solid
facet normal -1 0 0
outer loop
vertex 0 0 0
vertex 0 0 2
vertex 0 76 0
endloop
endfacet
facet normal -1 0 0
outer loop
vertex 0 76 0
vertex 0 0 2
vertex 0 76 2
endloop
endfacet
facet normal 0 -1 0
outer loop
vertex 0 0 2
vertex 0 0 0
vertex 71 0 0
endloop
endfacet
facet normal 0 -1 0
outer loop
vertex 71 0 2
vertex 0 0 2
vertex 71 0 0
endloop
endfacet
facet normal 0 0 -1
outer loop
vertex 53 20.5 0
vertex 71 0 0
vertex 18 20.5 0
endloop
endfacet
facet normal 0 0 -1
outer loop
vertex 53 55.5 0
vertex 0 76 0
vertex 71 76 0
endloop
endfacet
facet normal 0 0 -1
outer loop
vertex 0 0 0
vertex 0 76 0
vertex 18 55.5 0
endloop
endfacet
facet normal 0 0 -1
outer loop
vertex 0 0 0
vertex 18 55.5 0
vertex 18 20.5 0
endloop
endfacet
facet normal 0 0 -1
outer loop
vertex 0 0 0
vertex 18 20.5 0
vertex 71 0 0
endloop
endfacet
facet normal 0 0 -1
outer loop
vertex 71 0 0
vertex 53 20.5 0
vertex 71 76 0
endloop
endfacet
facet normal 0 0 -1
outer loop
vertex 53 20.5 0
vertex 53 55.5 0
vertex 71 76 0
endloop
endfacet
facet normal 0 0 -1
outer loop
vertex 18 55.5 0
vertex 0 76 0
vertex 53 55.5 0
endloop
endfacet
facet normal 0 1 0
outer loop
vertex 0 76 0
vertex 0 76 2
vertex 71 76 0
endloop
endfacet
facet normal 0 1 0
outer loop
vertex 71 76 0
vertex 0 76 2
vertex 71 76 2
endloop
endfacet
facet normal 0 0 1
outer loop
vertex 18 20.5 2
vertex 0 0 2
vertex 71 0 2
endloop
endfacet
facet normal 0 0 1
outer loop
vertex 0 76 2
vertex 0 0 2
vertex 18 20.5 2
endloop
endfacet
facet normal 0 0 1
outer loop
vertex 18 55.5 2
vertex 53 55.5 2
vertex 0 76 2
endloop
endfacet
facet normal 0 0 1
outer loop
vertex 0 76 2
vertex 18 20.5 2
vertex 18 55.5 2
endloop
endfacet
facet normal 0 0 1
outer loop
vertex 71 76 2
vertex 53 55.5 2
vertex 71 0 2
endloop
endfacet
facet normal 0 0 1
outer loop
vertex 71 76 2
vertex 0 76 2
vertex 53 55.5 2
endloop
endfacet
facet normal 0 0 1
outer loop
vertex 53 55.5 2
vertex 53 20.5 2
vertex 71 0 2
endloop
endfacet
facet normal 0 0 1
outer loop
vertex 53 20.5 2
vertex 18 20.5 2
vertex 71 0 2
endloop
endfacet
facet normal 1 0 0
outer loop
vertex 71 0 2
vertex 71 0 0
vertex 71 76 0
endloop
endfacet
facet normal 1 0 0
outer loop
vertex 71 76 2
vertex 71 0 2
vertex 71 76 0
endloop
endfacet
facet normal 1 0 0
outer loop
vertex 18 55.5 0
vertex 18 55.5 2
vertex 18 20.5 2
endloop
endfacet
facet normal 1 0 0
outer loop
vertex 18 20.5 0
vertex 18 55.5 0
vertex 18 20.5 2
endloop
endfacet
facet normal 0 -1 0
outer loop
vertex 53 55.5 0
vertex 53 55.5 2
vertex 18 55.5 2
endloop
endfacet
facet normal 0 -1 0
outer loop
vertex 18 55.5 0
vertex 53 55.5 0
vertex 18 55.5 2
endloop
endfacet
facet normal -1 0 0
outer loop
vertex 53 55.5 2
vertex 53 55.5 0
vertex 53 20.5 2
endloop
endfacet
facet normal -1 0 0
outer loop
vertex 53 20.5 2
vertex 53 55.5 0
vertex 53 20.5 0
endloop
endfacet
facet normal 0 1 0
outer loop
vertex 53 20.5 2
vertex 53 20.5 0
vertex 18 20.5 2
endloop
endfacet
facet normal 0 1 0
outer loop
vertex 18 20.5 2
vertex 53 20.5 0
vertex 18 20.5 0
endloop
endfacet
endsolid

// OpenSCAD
difference()
{
	cube([71,76,2]);
	color("red") translate([18,20.5,-0.5]) cube([35,35,5]);
}
